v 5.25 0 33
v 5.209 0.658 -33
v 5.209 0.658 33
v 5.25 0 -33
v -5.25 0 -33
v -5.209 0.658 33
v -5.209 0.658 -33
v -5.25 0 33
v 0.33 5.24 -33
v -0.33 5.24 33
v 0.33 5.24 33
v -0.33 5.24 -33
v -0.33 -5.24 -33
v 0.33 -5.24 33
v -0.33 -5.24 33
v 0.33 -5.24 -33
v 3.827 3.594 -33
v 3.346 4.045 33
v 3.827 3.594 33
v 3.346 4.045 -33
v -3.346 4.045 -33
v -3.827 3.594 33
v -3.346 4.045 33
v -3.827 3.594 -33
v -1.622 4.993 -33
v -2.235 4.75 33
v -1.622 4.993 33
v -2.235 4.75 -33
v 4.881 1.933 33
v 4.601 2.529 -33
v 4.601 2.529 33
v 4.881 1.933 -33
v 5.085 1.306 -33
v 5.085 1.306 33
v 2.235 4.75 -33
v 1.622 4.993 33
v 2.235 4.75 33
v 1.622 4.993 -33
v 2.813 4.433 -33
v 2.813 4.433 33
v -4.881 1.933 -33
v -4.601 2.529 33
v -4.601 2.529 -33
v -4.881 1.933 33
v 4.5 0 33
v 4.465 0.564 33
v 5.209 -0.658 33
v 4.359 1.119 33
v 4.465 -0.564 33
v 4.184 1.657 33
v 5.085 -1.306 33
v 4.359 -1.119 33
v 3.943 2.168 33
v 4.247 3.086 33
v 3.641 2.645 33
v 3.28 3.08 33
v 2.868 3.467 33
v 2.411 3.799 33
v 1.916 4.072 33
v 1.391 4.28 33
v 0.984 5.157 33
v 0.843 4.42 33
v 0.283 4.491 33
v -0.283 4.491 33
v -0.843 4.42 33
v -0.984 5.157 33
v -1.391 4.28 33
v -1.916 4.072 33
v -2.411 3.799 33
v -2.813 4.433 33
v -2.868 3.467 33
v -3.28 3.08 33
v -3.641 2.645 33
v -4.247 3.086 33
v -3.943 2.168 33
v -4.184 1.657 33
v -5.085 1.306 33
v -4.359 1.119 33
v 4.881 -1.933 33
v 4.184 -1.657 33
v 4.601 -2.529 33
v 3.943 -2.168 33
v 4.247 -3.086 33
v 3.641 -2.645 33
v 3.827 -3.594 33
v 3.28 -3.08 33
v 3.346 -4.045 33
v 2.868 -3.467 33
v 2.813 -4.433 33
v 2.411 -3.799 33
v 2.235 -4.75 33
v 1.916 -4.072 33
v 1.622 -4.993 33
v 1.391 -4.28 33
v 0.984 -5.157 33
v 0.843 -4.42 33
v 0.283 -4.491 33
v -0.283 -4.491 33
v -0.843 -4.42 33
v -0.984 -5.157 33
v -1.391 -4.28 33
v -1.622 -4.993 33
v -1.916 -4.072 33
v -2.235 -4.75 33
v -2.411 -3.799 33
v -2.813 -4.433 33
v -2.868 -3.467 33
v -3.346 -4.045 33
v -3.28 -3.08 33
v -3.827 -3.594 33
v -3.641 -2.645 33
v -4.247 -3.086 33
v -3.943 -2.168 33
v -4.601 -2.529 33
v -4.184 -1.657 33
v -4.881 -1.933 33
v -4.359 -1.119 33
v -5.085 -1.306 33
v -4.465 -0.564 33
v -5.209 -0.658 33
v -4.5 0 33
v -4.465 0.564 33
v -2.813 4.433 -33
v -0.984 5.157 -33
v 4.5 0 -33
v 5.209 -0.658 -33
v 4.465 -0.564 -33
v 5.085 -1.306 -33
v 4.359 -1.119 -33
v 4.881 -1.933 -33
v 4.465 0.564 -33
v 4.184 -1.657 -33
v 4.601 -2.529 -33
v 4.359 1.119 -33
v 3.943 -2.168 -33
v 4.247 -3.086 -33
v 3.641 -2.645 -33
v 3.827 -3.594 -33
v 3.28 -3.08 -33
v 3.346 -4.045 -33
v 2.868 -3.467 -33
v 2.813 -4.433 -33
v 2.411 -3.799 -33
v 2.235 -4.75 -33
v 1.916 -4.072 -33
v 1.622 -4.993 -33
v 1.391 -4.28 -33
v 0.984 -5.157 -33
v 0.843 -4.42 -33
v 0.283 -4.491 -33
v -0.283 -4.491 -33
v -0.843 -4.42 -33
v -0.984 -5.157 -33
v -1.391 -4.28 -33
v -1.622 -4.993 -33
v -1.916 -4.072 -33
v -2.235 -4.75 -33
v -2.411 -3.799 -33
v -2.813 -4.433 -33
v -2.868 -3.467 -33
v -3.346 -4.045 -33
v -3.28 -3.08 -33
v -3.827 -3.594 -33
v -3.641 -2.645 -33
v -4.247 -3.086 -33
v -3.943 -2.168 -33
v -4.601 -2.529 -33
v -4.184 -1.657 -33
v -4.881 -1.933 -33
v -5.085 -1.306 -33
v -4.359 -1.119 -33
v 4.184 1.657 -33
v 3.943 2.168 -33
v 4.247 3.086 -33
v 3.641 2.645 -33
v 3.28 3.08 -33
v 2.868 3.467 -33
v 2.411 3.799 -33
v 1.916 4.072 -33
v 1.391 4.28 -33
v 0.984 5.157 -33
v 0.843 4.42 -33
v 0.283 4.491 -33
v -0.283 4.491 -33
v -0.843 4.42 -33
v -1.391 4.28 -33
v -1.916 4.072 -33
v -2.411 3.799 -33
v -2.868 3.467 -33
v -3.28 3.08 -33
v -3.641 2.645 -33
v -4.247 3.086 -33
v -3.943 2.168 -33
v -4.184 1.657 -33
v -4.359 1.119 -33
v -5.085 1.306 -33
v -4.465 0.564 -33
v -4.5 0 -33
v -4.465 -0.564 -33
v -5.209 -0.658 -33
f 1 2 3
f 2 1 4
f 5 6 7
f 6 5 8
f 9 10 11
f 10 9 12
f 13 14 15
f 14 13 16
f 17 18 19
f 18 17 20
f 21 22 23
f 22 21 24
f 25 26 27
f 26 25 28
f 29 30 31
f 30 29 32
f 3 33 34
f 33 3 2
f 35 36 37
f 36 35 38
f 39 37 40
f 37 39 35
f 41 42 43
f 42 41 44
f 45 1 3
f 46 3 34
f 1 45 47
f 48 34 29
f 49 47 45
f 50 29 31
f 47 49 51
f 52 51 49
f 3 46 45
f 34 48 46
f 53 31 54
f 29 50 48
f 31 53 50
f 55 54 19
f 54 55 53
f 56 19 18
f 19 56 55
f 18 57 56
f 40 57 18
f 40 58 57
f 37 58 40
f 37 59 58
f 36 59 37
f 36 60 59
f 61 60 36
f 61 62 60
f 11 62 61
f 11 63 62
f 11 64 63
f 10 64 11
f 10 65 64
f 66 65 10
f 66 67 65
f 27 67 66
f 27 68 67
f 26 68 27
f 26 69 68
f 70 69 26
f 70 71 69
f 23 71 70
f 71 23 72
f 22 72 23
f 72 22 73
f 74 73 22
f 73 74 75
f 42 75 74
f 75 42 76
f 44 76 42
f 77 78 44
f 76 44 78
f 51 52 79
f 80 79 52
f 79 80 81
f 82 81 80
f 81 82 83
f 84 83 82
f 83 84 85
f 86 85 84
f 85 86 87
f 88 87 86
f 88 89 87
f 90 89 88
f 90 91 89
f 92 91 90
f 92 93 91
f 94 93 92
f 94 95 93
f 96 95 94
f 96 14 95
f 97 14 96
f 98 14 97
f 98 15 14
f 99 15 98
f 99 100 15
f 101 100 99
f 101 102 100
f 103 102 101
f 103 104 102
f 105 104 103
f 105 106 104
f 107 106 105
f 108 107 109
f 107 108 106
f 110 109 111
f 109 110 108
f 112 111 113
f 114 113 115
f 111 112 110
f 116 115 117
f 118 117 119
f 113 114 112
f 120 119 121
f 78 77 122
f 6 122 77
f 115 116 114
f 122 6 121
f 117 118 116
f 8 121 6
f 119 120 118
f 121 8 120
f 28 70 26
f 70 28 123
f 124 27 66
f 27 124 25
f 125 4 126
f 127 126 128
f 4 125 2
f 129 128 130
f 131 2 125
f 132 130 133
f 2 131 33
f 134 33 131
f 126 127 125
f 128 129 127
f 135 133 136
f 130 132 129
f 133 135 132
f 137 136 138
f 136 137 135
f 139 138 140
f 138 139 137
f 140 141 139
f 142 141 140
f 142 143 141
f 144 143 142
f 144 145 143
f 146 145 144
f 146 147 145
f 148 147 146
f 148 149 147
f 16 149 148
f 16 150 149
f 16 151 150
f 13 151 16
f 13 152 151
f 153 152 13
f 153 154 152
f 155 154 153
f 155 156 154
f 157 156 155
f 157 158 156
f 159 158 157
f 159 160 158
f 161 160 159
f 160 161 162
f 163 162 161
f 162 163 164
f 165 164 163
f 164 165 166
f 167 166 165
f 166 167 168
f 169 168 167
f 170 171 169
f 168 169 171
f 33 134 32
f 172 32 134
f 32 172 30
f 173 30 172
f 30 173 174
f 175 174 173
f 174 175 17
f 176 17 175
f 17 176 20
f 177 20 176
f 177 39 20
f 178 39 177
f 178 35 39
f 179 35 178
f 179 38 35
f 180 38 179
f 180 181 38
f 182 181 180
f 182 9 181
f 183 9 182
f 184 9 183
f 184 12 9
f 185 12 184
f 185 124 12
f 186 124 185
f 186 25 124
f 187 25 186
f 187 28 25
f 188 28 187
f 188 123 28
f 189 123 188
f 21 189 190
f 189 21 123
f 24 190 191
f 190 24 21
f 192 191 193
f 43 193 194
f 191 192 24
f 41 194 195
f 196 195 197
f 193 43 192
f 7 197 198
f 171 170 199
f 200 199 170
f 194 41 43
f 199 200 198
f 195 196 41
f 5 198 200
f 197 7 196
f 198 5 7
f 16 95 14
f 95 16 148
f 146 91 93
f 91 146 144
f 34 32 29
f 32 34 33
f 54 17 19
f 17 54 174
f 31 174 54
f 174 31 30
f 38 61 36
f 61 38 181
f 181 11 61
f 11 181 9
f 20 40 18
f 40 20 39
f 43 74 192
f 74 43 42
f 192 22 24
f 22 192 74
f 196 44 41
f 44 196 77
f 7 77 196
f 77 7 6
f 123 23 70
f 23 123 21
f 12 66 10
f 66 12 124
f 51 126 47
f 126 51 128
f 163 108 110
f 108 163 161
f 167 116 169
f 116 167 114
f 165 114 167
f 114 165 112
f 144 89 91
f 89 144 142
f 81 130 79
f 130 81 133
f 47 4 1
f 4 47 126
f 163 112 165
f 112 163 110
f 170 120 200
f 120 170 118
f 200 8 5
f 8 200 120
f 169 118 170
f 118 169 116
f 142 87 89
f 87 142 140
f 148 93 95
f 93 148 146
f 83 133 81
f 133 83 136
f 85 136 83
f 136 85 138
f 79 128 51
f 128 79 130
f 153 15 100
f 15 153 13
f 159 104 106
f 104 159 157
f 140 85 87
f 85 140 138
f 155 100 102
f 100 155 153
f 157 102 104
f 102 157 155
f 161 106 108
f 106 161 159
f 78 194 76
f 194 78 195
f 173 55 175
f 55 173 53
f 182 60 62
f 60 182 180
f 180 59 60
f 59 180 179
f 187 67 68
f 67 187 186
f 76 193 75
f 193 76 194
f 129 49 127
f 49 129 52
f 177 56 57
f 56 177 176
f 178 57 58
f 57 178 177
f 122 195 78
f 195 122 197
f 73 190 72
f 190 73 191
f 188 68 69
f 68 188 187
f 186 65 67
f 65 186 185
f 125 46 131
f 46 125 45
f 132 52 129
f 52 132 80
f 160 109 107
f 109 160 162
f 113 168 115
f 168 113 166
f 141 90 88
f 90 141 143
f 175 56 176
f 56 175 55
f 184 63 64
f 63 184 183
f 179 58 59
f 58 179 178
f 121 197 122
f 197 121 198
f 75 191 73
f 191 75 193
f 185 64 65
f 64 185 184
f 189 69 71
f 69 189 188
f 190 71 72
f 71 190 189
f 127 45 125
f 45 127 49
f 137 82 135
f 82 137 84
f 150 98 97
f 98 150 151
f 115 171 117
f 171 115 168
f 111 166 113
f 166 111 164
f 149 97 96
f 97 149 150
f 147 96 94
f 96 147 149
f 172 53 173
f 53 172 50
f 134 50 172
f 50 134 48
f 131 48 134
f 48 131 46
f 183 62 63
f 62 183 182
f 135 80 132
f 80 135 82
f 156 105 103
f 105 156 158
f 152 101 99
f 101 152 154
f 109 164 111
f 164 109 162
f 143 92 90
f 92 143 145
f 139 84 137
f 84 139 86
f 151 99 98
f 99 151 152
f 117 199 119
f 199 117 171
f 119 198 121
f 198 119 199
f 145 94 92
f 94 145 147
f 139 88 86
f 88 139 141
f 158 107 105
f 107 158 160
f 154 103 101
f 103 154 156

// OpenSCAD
$fn = 50;


difference() {
	union() {
		translate(v = [0, 0, -33.0000000000]) {
			cylinder(h = 66, r = 5.2500000000);
		}
	}
	union() {
		translate(v = [0, 0, -100.0000000000]) {
			cylinder(h = 200, r = 4.5000000000);
		}
	}
}
